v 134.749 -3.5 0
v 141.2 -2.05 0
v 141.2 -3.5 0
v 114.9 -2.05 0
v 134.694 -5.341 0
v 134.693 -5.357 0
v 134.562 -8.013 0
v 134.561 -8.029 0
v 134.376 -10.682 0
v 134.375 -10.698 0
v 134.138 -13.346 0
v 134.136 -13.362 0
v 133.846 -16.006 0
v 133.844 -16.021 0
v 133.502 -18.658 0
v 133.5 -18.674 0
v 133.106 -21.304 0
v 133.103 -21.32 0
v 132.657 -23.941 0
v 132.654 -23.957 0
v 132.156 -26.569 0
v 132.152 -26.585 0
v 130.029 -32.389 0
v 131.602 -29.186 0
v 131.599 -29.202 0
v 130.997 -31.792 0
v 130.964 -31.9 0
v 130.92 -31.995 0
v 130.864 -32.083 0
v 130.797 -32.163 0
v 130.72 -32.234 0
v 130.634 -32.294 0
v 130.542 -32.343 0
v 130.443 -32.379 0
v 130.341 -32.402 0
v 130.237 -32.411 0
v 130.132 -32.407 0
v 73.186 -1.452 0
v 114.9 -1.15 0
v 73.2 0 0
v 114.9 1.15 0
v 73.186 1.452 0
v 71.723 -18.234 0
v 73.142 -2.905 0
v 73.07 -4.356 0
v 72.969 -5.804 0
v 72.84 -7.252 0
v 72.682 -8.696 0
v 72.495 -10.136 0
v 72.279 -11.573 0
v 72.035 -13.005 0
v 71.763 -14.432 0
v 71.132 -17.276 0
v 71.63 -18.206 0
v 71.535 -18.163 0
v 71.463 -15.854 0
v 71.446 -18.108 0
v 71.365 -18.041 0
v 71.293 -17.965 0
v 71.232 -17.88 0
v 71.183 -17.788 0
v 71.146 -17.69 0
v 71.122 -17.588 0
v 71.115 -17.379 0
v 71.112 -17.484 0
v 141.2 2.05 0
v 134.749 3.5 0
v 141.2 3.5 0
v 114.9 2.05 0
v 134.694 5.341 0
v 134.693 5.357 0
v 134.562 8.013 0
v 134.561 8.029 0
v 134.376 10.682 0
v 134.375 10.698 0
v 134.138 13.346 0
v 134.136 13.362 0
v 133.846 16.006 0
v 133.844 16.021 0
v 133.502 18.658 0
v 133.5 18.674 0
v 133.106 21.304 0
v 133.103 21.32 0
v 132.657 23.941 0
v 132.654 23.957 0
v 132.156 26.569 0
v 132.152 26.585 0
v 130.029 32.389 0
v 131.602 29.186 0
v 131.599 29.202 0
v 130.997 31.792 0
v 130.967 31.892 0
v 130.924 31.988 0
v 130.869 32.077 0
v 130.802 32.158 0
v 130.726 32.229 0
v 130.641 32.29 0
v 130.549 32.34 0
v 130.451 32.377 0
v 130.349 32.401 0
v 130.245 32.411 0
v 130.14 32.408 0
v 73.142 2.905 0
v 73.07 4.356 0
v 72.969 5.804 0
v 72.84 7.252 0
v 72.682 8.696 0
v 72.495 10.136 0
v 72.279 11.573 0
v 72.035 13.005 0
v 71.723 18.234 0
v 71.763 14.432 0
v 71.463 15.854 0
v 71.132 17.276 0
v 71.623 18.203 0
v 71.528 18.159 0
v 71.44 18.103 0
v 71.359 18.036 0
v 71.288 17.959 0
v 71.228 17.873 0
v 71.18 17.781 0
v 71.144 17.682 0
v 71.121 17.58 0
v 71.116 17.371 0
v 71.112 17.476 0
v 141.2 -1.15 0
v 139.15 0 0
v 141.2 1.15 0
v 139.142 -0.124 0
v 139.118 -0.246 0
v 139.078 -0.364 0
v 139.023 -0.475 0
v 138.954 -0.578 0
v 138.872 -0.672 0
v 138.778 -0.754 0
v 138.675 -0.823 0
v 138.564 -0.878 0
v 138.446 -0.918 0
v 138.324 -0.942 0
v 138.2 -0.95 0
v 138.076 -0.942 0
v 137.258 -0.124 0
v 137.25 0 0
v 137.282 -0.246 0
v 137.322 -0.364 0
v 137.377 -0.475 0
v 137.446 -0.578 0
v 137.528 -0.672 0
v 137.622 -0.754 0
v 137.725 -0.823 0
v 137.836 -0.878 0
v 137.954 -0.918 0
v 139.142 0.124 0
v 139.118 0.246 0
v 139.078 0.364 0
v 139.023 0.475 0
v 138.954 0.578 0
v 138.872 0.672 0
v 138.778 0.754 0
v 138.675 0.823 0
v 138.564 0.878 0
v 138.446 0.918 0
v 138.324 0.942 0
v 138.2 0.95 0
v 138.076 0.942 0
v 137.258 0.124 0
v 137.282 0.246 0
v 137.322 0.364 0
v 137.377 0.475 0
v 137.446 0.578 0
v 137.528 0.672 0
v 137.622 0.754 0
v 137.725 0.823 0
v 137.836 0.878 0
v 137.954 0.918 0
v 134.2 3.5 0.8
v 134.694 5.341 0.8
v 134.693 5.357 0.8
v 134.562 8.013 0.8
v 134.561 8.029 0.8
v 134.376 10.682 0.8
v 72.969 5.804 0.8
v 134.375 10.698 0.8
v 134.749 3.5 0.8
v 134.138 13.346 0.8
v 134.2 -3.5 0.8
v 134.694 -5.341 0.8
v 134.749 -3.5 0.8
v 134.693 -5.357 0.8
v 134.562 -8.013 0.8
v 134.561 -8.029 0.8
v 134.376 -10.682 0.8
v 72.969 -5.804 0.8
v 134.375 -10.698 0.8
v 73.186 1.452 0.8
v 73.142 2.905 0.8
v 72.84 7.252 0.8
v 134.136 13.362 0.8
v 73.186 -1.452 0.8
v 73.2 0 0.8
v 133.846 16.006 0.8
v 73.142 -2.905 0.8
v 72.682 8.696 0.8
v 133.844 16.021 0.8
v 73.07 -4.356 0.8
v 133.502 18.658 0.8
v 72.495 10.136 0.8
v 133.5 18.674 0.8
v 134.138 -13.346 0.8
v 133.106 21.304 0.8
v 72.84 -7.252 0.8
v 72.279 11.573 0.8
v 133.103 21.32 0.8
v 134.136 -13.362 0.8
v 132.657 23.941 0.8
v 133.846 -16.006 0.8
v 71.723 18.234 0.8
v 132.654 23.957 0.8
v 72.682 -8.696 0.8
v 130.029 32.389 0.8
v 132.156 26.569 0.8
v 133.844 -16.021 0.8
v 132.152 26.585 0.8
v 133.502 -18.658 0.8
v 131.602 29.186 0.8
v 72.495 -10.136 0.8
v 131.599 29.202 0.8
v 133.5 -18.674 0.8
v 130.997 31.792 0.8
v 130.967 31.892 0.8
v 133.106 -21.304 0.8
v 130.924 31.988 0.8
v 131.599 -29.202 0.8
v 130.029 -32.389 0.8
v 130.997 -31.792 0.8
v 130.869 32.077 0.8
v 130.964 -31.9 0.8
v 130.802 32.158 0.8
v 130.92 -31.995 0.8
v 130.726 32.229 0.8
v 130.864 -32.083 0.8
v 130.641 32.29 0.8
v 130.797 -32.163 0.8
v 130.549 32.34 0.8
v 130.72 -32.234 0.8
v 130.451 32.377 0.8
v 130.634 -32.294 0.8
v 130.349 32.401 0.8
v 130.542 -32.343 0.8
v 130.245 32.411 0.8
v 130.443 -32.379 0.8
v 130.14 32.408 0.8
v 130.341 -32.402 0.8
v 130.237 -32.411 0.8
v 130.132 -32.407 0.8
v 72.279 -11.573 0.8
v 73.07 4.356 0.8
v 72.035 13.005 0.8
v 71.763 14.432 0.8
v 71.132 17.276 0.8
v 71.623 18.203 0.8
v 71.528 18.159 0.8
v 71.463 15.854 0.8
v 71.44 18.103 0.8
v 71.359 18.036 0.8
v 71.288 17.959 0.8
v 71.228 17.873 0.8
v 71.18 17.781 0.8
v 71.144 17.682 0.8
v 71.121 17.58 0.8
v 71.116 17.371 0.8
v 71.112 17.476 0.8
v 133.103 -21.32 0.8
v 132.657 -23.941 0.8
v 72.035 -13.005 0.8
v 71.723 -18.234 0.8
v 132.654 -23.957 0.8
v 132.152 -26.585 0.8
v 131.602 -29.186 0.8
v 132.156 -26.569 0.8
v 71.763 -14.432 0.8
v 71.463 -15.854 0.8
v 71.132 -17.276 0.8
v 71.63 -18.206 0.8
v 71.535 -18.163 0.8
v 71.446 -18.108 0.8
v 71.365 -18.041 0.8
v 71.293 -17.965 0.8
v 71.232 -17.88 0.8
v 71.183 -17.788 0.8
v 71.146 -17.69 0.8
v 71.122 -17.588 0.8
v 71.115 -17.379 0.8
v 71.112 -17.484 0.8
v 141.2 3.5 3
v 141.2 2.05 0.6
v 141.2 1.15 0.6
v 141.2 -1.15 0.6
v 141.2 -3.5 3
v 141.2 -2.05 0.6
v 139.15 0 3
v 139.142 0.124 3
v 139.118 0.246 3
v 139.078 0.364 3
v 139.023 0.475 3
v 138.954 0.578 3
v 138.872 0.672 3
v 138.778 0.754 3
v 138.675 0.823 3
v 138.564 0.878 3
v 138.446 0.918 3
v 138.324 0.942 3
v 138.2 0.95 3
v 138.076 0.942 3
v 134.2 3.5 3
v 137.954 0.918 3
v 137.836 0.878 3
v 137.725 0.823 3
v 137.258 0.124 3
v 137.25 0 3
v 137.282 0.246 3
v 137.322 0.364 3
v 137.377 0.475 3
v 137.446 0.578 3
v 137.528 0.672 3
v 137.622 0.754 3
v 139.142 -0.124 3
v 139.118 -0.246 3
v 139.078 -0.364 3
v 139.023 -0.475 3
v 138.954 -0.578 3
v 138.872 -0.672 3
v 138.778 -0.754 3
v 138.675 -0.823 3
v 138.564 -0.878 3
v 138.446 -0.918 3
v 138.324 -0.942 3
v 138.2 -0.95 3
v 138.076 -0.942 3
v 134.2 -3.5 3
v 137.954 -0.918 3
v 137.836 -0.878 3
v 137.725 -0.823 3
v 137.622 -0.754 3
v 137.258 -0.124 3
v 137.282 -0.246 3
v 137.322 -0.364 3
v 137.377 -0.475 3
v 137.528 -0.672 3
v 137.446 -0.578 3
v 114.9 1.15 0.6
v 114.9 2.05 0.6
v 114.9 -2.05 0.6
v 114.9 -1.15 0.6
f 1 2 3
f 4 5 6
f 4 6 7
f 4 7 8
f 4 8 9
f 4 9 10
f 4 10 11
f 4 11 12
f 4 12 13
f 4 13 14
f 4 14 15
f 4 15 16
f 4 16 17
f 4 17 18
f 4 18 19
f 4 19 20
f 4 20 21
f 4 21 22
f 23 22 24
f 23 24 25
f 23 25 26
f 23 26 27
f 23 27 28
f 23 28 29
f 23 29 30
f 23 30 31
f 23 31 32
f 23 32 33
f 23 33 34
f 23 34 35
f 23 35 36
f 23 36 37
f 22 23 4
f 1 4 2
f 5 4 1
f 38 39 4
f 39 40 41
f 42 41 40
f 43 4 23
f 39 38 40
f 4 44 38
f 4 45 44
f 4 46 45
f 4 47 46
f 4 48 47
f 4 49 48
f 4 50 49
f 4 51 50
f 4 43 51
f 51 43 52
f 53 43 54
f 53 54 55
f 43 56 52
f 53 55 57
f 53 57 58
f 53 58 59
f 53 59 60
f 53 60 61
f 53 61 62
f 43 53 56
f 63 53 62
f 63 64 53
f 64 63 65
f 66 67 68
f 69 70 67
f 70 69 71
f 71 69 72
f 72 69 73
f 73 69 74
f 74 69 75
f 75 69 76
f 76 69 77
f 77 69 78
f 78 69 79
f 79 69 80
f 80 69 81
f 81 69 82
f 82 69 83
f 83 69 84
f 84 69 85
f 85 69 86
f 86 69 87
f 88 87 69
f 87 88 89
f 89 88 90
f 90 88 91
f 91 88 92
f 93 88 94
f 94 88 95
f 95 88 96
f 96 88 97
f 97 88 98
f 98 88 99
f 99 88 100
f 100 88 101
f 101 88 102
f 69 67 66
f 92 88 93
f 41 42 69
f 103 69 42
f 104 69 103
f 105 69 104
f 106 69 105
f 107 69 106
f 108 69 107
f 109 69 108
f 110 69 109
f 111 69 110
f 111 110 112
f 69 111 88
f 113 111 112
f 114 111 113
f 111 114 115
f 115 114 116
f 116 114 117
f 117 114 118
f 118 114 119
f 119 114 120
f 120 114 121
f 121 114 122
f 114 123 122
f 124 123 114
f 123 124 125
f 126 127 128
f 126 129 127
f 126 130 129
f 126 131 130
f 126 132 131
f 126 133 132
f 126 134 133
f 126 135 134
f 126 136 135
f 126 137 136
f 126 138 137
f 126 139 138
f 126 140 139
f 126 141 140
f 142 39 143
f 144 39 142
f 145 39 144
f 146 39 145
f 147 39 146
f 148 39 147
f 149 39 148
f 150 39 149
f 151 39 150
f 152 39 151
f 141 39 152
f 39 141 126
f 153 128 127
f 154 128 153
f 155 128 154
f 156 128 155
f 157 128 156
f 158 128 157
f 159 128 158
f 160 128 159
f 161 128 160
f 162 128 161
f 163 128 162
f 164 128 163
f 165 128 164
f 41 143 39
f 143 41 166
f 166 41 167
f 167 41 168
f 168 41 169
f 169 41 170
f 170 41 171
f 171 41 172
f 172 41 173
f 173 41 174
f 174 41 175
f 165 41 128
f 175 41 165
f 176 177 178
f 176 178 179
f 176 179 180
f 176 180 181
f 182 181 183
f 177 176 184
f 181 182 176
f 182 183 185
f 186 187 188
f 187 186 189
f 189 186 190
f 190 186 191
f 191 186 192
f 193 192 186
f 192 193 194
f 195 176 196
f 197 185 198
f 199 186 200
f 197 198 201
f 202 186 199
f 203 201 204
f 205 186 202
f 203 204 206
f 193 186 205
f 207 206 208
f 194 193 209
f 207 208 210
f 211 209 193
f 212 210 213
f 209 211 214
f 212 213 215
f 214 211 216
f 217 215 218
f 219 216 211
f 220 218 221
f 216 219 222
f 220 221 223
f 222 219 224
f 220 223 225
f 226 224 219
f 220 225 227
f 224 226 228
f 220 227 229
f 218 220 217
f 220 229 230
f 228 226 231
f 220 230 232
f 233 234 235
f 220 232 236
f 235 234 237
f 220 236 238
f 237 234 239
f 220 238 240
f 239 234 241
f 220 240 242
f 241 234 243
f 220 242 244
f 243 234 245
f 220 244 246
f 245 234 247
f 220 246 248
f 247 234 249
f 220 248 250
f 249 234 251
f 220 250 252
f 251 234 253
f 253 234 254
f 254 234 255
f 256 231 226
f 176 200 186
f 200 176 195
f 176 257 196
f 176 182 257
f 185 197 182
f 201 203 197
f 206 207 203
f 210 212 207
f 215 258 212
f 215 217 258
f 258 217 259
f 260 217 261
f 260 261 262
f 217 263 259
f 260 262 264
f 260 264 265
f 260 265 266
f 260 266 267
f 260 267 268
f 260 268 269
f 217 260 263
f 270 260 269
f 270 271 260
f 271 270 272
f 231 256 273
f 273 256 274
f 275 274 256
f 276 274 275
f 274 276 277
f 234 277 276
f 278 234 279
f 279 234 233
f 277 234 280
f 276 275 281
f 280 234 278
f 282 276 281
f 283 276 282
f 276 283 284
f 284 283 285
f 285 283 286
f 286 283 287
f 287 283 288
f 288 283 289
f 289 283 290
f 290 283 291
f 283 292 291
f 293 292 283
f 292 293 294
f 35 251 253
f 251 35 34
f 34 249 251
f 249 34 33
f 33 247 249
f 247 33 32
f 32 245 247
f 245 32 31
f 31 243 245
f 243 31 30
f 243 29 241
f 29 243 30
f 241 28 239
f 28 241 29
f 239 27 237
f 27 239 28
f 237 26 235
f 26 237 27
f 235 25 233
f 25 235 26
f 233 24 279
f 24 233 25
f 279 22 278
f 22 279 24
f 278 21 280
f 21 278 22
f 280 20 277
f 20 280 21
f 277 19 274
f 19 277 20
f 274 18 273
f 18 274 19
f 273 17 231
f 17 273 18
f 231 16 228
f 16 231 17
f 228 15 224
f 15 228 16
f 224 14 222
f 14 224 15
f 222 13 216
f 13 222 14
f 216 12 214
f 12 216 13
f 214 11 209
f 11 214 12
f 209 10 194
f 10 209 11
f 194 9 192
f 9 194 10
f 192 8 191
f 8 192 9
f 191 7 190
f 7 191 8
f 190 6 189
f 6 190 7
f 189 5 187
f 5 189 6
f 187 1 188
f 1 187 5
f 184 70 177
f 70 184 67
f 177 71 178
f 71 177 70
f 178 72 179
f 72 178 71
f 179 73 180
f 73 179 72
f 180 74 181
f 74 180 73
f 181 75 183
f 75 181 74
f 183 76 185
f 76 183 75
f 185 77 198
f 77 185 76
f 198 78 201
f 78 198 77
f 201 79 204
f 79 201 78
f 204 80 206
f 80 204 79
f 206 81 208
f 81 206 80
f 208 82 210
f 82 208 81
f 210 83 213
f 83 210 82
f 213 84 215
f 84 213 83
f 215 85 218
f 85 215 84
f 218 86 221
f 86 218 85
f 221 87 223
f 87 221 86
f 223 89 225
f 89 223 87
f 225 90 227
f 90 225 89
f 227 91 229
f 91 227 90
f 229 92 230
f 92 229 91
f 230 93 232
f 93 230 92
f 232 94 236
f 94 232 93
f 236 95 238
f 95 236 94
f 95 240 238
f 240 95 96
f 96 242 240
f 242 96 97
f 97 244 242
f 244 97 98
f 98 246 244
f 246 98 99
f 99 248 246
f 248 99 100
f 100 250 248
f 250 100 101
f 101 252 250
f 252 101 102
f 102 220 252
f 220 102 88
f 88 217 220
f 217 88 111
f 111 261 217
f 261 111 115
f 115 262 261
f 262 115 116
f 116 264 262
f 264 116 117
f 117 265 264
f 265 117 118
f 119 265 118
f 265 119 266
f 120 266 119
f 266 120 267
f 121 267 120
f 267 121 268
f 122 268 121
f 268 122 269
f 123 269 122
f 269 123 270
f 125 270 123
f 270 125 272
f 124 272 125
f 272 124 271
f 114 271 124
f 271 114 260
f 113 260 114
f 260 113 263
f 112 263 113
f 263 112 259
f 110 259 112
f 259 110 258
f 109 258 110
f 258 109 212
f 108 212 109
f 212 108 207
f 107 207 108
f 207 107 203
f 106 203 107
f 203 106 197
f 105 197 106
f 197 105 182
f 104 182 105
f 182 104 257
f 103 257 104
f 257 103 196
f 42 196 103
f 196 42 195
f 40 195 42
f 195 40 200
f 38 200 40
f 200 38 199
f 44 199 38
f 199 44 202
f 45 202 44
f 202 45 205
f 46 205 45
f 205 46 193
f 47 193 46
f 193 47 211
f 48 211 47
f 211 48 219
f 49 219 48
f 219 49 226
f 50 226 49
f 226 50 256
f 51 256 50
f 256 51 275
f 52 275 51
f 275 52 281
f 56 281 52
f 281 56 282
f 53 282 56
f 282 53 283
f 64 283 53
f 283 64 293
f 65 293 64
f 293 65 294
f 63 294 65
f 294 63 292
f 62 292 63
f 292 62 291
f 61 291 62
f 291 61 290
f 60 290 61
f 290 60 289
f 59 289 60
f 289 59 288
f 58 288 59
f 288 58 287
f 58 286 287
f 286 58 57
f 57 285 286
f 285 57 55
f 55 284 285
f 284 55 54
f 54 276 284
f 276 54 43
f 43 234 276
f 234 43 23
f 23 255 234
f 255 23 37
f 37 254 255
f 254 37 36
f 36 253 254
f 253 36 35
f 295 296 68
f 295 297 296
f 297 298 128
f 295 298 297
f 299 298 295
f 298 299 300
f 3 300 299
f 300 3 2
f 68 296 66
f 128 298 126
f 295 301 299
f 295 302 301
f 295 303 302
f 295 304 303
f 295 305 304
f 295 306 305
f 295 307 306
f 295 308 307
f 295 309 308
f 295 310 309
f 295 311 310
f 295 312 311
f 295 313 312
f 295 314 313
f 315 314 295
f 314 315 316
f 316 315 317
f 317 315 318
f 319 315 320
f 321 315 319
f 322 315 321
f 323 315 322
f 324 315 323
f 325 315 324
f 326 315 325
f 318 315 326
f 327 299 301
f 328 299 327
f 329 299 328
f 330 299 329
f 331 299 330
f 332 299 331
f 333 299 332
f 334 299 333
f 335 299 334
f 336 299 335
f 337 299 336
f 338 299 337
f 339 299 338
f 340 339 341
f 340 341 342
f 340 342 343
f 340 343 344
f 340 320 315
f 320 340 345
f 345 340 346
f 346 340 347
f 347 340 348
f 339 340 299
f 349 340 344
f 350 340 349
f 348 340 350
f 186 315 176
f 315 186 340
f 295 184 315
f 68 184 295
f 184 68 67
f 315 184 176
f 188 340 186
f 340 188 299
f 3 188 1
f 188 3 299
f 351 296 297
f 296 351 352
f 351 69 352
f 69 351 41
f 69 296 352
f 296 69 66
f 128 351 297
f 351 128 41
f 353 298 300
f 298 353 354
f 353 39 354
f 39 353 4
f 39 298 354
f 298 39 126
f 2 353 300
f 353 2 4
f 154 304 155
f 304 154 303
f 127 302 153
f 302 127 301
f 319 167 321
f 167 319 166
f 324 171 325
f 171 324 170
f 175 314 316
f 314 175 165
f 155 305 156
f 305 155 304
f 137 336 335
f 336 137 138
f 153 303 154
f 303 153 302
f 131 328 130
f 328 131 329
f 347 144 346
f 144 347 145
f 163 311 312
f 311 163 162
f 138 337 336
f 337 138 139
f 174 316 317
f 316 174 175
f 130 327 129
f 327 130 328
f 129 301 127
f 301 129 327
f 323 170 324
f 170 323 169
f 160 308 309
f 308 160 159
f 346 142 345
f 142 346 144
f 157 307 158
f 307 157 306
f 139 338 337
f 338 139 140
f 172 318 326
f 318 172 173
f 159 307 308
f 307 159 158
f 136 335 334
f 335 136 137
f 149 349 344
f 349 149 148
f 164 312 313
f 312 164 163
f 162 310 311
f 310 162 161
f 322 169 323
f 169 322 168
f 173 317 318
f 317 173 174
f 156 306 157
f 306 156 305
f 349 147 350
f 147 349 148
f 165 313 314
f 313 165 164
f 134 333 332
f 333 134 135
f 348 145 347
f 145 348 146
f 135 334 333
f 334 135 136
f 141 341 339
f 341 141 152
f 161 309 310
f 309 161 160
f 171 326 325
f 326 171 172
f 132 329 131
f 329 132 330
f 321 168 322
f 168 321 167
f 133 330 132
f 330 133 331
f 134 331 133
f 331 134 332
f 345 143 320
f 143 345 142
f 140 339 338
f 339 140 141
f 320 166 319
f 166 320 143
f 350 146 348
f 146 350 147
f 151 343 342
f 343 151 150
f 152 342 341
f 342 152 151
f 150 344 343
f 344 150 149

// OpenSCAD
// Gen-DM — bobbin LID (top flange + locating tab). Print x12, flange face DOWN on the bed.
// CA-glue onto the hub top BEFORE winding. Tab = lap joint into the stator tab pocket; 1.75 mm filament
// pin through pin hole + stator ledge, trim flush. Lead slots carry both leads flush.
include <parameters.scad>;
$fn = 48;
module sector_2d(r_in, r_out, ang) {
    polygon([
        for (a = [-ang/2 : ang/24 : ang/2]) [r_in*cos(a), r_in*sin(a)],
        for (a = [ang/2 : -ang/24 : -ang/2]) [r_out*cos(a), r_out*sin(a)]
    ]);
}
module footprint_2d() { offset(r=wall) sector_2d(coil_id_r, coil_od_r, span_deg); }
module hub_2d()       { offset(delta=-coil_core_inset) sector_2d(coil_id_r, coil_od_r, span_deg); }

difference() {
    union() {
        linear_extrude(flange_t) footprint_2d();
        translate([coil_od_r + 0.2, -tab_w/2, 0]) cube([tab_len, tab_w, tab_h]);
    }
    translate([coil_mount_r, 0, -0.1]) cylinder(d=pin_d, h=tab_h + 1);
    for (y = [lead_y, -lead_y])
        translate([coil_od_r - coil_core_inset - 0.5, y - lead_slot_w/2, -0.1])
            cube([coil_core_inset + tab_len + 2, lead_slot_w, lead_groove_d + 0.1]);
}
